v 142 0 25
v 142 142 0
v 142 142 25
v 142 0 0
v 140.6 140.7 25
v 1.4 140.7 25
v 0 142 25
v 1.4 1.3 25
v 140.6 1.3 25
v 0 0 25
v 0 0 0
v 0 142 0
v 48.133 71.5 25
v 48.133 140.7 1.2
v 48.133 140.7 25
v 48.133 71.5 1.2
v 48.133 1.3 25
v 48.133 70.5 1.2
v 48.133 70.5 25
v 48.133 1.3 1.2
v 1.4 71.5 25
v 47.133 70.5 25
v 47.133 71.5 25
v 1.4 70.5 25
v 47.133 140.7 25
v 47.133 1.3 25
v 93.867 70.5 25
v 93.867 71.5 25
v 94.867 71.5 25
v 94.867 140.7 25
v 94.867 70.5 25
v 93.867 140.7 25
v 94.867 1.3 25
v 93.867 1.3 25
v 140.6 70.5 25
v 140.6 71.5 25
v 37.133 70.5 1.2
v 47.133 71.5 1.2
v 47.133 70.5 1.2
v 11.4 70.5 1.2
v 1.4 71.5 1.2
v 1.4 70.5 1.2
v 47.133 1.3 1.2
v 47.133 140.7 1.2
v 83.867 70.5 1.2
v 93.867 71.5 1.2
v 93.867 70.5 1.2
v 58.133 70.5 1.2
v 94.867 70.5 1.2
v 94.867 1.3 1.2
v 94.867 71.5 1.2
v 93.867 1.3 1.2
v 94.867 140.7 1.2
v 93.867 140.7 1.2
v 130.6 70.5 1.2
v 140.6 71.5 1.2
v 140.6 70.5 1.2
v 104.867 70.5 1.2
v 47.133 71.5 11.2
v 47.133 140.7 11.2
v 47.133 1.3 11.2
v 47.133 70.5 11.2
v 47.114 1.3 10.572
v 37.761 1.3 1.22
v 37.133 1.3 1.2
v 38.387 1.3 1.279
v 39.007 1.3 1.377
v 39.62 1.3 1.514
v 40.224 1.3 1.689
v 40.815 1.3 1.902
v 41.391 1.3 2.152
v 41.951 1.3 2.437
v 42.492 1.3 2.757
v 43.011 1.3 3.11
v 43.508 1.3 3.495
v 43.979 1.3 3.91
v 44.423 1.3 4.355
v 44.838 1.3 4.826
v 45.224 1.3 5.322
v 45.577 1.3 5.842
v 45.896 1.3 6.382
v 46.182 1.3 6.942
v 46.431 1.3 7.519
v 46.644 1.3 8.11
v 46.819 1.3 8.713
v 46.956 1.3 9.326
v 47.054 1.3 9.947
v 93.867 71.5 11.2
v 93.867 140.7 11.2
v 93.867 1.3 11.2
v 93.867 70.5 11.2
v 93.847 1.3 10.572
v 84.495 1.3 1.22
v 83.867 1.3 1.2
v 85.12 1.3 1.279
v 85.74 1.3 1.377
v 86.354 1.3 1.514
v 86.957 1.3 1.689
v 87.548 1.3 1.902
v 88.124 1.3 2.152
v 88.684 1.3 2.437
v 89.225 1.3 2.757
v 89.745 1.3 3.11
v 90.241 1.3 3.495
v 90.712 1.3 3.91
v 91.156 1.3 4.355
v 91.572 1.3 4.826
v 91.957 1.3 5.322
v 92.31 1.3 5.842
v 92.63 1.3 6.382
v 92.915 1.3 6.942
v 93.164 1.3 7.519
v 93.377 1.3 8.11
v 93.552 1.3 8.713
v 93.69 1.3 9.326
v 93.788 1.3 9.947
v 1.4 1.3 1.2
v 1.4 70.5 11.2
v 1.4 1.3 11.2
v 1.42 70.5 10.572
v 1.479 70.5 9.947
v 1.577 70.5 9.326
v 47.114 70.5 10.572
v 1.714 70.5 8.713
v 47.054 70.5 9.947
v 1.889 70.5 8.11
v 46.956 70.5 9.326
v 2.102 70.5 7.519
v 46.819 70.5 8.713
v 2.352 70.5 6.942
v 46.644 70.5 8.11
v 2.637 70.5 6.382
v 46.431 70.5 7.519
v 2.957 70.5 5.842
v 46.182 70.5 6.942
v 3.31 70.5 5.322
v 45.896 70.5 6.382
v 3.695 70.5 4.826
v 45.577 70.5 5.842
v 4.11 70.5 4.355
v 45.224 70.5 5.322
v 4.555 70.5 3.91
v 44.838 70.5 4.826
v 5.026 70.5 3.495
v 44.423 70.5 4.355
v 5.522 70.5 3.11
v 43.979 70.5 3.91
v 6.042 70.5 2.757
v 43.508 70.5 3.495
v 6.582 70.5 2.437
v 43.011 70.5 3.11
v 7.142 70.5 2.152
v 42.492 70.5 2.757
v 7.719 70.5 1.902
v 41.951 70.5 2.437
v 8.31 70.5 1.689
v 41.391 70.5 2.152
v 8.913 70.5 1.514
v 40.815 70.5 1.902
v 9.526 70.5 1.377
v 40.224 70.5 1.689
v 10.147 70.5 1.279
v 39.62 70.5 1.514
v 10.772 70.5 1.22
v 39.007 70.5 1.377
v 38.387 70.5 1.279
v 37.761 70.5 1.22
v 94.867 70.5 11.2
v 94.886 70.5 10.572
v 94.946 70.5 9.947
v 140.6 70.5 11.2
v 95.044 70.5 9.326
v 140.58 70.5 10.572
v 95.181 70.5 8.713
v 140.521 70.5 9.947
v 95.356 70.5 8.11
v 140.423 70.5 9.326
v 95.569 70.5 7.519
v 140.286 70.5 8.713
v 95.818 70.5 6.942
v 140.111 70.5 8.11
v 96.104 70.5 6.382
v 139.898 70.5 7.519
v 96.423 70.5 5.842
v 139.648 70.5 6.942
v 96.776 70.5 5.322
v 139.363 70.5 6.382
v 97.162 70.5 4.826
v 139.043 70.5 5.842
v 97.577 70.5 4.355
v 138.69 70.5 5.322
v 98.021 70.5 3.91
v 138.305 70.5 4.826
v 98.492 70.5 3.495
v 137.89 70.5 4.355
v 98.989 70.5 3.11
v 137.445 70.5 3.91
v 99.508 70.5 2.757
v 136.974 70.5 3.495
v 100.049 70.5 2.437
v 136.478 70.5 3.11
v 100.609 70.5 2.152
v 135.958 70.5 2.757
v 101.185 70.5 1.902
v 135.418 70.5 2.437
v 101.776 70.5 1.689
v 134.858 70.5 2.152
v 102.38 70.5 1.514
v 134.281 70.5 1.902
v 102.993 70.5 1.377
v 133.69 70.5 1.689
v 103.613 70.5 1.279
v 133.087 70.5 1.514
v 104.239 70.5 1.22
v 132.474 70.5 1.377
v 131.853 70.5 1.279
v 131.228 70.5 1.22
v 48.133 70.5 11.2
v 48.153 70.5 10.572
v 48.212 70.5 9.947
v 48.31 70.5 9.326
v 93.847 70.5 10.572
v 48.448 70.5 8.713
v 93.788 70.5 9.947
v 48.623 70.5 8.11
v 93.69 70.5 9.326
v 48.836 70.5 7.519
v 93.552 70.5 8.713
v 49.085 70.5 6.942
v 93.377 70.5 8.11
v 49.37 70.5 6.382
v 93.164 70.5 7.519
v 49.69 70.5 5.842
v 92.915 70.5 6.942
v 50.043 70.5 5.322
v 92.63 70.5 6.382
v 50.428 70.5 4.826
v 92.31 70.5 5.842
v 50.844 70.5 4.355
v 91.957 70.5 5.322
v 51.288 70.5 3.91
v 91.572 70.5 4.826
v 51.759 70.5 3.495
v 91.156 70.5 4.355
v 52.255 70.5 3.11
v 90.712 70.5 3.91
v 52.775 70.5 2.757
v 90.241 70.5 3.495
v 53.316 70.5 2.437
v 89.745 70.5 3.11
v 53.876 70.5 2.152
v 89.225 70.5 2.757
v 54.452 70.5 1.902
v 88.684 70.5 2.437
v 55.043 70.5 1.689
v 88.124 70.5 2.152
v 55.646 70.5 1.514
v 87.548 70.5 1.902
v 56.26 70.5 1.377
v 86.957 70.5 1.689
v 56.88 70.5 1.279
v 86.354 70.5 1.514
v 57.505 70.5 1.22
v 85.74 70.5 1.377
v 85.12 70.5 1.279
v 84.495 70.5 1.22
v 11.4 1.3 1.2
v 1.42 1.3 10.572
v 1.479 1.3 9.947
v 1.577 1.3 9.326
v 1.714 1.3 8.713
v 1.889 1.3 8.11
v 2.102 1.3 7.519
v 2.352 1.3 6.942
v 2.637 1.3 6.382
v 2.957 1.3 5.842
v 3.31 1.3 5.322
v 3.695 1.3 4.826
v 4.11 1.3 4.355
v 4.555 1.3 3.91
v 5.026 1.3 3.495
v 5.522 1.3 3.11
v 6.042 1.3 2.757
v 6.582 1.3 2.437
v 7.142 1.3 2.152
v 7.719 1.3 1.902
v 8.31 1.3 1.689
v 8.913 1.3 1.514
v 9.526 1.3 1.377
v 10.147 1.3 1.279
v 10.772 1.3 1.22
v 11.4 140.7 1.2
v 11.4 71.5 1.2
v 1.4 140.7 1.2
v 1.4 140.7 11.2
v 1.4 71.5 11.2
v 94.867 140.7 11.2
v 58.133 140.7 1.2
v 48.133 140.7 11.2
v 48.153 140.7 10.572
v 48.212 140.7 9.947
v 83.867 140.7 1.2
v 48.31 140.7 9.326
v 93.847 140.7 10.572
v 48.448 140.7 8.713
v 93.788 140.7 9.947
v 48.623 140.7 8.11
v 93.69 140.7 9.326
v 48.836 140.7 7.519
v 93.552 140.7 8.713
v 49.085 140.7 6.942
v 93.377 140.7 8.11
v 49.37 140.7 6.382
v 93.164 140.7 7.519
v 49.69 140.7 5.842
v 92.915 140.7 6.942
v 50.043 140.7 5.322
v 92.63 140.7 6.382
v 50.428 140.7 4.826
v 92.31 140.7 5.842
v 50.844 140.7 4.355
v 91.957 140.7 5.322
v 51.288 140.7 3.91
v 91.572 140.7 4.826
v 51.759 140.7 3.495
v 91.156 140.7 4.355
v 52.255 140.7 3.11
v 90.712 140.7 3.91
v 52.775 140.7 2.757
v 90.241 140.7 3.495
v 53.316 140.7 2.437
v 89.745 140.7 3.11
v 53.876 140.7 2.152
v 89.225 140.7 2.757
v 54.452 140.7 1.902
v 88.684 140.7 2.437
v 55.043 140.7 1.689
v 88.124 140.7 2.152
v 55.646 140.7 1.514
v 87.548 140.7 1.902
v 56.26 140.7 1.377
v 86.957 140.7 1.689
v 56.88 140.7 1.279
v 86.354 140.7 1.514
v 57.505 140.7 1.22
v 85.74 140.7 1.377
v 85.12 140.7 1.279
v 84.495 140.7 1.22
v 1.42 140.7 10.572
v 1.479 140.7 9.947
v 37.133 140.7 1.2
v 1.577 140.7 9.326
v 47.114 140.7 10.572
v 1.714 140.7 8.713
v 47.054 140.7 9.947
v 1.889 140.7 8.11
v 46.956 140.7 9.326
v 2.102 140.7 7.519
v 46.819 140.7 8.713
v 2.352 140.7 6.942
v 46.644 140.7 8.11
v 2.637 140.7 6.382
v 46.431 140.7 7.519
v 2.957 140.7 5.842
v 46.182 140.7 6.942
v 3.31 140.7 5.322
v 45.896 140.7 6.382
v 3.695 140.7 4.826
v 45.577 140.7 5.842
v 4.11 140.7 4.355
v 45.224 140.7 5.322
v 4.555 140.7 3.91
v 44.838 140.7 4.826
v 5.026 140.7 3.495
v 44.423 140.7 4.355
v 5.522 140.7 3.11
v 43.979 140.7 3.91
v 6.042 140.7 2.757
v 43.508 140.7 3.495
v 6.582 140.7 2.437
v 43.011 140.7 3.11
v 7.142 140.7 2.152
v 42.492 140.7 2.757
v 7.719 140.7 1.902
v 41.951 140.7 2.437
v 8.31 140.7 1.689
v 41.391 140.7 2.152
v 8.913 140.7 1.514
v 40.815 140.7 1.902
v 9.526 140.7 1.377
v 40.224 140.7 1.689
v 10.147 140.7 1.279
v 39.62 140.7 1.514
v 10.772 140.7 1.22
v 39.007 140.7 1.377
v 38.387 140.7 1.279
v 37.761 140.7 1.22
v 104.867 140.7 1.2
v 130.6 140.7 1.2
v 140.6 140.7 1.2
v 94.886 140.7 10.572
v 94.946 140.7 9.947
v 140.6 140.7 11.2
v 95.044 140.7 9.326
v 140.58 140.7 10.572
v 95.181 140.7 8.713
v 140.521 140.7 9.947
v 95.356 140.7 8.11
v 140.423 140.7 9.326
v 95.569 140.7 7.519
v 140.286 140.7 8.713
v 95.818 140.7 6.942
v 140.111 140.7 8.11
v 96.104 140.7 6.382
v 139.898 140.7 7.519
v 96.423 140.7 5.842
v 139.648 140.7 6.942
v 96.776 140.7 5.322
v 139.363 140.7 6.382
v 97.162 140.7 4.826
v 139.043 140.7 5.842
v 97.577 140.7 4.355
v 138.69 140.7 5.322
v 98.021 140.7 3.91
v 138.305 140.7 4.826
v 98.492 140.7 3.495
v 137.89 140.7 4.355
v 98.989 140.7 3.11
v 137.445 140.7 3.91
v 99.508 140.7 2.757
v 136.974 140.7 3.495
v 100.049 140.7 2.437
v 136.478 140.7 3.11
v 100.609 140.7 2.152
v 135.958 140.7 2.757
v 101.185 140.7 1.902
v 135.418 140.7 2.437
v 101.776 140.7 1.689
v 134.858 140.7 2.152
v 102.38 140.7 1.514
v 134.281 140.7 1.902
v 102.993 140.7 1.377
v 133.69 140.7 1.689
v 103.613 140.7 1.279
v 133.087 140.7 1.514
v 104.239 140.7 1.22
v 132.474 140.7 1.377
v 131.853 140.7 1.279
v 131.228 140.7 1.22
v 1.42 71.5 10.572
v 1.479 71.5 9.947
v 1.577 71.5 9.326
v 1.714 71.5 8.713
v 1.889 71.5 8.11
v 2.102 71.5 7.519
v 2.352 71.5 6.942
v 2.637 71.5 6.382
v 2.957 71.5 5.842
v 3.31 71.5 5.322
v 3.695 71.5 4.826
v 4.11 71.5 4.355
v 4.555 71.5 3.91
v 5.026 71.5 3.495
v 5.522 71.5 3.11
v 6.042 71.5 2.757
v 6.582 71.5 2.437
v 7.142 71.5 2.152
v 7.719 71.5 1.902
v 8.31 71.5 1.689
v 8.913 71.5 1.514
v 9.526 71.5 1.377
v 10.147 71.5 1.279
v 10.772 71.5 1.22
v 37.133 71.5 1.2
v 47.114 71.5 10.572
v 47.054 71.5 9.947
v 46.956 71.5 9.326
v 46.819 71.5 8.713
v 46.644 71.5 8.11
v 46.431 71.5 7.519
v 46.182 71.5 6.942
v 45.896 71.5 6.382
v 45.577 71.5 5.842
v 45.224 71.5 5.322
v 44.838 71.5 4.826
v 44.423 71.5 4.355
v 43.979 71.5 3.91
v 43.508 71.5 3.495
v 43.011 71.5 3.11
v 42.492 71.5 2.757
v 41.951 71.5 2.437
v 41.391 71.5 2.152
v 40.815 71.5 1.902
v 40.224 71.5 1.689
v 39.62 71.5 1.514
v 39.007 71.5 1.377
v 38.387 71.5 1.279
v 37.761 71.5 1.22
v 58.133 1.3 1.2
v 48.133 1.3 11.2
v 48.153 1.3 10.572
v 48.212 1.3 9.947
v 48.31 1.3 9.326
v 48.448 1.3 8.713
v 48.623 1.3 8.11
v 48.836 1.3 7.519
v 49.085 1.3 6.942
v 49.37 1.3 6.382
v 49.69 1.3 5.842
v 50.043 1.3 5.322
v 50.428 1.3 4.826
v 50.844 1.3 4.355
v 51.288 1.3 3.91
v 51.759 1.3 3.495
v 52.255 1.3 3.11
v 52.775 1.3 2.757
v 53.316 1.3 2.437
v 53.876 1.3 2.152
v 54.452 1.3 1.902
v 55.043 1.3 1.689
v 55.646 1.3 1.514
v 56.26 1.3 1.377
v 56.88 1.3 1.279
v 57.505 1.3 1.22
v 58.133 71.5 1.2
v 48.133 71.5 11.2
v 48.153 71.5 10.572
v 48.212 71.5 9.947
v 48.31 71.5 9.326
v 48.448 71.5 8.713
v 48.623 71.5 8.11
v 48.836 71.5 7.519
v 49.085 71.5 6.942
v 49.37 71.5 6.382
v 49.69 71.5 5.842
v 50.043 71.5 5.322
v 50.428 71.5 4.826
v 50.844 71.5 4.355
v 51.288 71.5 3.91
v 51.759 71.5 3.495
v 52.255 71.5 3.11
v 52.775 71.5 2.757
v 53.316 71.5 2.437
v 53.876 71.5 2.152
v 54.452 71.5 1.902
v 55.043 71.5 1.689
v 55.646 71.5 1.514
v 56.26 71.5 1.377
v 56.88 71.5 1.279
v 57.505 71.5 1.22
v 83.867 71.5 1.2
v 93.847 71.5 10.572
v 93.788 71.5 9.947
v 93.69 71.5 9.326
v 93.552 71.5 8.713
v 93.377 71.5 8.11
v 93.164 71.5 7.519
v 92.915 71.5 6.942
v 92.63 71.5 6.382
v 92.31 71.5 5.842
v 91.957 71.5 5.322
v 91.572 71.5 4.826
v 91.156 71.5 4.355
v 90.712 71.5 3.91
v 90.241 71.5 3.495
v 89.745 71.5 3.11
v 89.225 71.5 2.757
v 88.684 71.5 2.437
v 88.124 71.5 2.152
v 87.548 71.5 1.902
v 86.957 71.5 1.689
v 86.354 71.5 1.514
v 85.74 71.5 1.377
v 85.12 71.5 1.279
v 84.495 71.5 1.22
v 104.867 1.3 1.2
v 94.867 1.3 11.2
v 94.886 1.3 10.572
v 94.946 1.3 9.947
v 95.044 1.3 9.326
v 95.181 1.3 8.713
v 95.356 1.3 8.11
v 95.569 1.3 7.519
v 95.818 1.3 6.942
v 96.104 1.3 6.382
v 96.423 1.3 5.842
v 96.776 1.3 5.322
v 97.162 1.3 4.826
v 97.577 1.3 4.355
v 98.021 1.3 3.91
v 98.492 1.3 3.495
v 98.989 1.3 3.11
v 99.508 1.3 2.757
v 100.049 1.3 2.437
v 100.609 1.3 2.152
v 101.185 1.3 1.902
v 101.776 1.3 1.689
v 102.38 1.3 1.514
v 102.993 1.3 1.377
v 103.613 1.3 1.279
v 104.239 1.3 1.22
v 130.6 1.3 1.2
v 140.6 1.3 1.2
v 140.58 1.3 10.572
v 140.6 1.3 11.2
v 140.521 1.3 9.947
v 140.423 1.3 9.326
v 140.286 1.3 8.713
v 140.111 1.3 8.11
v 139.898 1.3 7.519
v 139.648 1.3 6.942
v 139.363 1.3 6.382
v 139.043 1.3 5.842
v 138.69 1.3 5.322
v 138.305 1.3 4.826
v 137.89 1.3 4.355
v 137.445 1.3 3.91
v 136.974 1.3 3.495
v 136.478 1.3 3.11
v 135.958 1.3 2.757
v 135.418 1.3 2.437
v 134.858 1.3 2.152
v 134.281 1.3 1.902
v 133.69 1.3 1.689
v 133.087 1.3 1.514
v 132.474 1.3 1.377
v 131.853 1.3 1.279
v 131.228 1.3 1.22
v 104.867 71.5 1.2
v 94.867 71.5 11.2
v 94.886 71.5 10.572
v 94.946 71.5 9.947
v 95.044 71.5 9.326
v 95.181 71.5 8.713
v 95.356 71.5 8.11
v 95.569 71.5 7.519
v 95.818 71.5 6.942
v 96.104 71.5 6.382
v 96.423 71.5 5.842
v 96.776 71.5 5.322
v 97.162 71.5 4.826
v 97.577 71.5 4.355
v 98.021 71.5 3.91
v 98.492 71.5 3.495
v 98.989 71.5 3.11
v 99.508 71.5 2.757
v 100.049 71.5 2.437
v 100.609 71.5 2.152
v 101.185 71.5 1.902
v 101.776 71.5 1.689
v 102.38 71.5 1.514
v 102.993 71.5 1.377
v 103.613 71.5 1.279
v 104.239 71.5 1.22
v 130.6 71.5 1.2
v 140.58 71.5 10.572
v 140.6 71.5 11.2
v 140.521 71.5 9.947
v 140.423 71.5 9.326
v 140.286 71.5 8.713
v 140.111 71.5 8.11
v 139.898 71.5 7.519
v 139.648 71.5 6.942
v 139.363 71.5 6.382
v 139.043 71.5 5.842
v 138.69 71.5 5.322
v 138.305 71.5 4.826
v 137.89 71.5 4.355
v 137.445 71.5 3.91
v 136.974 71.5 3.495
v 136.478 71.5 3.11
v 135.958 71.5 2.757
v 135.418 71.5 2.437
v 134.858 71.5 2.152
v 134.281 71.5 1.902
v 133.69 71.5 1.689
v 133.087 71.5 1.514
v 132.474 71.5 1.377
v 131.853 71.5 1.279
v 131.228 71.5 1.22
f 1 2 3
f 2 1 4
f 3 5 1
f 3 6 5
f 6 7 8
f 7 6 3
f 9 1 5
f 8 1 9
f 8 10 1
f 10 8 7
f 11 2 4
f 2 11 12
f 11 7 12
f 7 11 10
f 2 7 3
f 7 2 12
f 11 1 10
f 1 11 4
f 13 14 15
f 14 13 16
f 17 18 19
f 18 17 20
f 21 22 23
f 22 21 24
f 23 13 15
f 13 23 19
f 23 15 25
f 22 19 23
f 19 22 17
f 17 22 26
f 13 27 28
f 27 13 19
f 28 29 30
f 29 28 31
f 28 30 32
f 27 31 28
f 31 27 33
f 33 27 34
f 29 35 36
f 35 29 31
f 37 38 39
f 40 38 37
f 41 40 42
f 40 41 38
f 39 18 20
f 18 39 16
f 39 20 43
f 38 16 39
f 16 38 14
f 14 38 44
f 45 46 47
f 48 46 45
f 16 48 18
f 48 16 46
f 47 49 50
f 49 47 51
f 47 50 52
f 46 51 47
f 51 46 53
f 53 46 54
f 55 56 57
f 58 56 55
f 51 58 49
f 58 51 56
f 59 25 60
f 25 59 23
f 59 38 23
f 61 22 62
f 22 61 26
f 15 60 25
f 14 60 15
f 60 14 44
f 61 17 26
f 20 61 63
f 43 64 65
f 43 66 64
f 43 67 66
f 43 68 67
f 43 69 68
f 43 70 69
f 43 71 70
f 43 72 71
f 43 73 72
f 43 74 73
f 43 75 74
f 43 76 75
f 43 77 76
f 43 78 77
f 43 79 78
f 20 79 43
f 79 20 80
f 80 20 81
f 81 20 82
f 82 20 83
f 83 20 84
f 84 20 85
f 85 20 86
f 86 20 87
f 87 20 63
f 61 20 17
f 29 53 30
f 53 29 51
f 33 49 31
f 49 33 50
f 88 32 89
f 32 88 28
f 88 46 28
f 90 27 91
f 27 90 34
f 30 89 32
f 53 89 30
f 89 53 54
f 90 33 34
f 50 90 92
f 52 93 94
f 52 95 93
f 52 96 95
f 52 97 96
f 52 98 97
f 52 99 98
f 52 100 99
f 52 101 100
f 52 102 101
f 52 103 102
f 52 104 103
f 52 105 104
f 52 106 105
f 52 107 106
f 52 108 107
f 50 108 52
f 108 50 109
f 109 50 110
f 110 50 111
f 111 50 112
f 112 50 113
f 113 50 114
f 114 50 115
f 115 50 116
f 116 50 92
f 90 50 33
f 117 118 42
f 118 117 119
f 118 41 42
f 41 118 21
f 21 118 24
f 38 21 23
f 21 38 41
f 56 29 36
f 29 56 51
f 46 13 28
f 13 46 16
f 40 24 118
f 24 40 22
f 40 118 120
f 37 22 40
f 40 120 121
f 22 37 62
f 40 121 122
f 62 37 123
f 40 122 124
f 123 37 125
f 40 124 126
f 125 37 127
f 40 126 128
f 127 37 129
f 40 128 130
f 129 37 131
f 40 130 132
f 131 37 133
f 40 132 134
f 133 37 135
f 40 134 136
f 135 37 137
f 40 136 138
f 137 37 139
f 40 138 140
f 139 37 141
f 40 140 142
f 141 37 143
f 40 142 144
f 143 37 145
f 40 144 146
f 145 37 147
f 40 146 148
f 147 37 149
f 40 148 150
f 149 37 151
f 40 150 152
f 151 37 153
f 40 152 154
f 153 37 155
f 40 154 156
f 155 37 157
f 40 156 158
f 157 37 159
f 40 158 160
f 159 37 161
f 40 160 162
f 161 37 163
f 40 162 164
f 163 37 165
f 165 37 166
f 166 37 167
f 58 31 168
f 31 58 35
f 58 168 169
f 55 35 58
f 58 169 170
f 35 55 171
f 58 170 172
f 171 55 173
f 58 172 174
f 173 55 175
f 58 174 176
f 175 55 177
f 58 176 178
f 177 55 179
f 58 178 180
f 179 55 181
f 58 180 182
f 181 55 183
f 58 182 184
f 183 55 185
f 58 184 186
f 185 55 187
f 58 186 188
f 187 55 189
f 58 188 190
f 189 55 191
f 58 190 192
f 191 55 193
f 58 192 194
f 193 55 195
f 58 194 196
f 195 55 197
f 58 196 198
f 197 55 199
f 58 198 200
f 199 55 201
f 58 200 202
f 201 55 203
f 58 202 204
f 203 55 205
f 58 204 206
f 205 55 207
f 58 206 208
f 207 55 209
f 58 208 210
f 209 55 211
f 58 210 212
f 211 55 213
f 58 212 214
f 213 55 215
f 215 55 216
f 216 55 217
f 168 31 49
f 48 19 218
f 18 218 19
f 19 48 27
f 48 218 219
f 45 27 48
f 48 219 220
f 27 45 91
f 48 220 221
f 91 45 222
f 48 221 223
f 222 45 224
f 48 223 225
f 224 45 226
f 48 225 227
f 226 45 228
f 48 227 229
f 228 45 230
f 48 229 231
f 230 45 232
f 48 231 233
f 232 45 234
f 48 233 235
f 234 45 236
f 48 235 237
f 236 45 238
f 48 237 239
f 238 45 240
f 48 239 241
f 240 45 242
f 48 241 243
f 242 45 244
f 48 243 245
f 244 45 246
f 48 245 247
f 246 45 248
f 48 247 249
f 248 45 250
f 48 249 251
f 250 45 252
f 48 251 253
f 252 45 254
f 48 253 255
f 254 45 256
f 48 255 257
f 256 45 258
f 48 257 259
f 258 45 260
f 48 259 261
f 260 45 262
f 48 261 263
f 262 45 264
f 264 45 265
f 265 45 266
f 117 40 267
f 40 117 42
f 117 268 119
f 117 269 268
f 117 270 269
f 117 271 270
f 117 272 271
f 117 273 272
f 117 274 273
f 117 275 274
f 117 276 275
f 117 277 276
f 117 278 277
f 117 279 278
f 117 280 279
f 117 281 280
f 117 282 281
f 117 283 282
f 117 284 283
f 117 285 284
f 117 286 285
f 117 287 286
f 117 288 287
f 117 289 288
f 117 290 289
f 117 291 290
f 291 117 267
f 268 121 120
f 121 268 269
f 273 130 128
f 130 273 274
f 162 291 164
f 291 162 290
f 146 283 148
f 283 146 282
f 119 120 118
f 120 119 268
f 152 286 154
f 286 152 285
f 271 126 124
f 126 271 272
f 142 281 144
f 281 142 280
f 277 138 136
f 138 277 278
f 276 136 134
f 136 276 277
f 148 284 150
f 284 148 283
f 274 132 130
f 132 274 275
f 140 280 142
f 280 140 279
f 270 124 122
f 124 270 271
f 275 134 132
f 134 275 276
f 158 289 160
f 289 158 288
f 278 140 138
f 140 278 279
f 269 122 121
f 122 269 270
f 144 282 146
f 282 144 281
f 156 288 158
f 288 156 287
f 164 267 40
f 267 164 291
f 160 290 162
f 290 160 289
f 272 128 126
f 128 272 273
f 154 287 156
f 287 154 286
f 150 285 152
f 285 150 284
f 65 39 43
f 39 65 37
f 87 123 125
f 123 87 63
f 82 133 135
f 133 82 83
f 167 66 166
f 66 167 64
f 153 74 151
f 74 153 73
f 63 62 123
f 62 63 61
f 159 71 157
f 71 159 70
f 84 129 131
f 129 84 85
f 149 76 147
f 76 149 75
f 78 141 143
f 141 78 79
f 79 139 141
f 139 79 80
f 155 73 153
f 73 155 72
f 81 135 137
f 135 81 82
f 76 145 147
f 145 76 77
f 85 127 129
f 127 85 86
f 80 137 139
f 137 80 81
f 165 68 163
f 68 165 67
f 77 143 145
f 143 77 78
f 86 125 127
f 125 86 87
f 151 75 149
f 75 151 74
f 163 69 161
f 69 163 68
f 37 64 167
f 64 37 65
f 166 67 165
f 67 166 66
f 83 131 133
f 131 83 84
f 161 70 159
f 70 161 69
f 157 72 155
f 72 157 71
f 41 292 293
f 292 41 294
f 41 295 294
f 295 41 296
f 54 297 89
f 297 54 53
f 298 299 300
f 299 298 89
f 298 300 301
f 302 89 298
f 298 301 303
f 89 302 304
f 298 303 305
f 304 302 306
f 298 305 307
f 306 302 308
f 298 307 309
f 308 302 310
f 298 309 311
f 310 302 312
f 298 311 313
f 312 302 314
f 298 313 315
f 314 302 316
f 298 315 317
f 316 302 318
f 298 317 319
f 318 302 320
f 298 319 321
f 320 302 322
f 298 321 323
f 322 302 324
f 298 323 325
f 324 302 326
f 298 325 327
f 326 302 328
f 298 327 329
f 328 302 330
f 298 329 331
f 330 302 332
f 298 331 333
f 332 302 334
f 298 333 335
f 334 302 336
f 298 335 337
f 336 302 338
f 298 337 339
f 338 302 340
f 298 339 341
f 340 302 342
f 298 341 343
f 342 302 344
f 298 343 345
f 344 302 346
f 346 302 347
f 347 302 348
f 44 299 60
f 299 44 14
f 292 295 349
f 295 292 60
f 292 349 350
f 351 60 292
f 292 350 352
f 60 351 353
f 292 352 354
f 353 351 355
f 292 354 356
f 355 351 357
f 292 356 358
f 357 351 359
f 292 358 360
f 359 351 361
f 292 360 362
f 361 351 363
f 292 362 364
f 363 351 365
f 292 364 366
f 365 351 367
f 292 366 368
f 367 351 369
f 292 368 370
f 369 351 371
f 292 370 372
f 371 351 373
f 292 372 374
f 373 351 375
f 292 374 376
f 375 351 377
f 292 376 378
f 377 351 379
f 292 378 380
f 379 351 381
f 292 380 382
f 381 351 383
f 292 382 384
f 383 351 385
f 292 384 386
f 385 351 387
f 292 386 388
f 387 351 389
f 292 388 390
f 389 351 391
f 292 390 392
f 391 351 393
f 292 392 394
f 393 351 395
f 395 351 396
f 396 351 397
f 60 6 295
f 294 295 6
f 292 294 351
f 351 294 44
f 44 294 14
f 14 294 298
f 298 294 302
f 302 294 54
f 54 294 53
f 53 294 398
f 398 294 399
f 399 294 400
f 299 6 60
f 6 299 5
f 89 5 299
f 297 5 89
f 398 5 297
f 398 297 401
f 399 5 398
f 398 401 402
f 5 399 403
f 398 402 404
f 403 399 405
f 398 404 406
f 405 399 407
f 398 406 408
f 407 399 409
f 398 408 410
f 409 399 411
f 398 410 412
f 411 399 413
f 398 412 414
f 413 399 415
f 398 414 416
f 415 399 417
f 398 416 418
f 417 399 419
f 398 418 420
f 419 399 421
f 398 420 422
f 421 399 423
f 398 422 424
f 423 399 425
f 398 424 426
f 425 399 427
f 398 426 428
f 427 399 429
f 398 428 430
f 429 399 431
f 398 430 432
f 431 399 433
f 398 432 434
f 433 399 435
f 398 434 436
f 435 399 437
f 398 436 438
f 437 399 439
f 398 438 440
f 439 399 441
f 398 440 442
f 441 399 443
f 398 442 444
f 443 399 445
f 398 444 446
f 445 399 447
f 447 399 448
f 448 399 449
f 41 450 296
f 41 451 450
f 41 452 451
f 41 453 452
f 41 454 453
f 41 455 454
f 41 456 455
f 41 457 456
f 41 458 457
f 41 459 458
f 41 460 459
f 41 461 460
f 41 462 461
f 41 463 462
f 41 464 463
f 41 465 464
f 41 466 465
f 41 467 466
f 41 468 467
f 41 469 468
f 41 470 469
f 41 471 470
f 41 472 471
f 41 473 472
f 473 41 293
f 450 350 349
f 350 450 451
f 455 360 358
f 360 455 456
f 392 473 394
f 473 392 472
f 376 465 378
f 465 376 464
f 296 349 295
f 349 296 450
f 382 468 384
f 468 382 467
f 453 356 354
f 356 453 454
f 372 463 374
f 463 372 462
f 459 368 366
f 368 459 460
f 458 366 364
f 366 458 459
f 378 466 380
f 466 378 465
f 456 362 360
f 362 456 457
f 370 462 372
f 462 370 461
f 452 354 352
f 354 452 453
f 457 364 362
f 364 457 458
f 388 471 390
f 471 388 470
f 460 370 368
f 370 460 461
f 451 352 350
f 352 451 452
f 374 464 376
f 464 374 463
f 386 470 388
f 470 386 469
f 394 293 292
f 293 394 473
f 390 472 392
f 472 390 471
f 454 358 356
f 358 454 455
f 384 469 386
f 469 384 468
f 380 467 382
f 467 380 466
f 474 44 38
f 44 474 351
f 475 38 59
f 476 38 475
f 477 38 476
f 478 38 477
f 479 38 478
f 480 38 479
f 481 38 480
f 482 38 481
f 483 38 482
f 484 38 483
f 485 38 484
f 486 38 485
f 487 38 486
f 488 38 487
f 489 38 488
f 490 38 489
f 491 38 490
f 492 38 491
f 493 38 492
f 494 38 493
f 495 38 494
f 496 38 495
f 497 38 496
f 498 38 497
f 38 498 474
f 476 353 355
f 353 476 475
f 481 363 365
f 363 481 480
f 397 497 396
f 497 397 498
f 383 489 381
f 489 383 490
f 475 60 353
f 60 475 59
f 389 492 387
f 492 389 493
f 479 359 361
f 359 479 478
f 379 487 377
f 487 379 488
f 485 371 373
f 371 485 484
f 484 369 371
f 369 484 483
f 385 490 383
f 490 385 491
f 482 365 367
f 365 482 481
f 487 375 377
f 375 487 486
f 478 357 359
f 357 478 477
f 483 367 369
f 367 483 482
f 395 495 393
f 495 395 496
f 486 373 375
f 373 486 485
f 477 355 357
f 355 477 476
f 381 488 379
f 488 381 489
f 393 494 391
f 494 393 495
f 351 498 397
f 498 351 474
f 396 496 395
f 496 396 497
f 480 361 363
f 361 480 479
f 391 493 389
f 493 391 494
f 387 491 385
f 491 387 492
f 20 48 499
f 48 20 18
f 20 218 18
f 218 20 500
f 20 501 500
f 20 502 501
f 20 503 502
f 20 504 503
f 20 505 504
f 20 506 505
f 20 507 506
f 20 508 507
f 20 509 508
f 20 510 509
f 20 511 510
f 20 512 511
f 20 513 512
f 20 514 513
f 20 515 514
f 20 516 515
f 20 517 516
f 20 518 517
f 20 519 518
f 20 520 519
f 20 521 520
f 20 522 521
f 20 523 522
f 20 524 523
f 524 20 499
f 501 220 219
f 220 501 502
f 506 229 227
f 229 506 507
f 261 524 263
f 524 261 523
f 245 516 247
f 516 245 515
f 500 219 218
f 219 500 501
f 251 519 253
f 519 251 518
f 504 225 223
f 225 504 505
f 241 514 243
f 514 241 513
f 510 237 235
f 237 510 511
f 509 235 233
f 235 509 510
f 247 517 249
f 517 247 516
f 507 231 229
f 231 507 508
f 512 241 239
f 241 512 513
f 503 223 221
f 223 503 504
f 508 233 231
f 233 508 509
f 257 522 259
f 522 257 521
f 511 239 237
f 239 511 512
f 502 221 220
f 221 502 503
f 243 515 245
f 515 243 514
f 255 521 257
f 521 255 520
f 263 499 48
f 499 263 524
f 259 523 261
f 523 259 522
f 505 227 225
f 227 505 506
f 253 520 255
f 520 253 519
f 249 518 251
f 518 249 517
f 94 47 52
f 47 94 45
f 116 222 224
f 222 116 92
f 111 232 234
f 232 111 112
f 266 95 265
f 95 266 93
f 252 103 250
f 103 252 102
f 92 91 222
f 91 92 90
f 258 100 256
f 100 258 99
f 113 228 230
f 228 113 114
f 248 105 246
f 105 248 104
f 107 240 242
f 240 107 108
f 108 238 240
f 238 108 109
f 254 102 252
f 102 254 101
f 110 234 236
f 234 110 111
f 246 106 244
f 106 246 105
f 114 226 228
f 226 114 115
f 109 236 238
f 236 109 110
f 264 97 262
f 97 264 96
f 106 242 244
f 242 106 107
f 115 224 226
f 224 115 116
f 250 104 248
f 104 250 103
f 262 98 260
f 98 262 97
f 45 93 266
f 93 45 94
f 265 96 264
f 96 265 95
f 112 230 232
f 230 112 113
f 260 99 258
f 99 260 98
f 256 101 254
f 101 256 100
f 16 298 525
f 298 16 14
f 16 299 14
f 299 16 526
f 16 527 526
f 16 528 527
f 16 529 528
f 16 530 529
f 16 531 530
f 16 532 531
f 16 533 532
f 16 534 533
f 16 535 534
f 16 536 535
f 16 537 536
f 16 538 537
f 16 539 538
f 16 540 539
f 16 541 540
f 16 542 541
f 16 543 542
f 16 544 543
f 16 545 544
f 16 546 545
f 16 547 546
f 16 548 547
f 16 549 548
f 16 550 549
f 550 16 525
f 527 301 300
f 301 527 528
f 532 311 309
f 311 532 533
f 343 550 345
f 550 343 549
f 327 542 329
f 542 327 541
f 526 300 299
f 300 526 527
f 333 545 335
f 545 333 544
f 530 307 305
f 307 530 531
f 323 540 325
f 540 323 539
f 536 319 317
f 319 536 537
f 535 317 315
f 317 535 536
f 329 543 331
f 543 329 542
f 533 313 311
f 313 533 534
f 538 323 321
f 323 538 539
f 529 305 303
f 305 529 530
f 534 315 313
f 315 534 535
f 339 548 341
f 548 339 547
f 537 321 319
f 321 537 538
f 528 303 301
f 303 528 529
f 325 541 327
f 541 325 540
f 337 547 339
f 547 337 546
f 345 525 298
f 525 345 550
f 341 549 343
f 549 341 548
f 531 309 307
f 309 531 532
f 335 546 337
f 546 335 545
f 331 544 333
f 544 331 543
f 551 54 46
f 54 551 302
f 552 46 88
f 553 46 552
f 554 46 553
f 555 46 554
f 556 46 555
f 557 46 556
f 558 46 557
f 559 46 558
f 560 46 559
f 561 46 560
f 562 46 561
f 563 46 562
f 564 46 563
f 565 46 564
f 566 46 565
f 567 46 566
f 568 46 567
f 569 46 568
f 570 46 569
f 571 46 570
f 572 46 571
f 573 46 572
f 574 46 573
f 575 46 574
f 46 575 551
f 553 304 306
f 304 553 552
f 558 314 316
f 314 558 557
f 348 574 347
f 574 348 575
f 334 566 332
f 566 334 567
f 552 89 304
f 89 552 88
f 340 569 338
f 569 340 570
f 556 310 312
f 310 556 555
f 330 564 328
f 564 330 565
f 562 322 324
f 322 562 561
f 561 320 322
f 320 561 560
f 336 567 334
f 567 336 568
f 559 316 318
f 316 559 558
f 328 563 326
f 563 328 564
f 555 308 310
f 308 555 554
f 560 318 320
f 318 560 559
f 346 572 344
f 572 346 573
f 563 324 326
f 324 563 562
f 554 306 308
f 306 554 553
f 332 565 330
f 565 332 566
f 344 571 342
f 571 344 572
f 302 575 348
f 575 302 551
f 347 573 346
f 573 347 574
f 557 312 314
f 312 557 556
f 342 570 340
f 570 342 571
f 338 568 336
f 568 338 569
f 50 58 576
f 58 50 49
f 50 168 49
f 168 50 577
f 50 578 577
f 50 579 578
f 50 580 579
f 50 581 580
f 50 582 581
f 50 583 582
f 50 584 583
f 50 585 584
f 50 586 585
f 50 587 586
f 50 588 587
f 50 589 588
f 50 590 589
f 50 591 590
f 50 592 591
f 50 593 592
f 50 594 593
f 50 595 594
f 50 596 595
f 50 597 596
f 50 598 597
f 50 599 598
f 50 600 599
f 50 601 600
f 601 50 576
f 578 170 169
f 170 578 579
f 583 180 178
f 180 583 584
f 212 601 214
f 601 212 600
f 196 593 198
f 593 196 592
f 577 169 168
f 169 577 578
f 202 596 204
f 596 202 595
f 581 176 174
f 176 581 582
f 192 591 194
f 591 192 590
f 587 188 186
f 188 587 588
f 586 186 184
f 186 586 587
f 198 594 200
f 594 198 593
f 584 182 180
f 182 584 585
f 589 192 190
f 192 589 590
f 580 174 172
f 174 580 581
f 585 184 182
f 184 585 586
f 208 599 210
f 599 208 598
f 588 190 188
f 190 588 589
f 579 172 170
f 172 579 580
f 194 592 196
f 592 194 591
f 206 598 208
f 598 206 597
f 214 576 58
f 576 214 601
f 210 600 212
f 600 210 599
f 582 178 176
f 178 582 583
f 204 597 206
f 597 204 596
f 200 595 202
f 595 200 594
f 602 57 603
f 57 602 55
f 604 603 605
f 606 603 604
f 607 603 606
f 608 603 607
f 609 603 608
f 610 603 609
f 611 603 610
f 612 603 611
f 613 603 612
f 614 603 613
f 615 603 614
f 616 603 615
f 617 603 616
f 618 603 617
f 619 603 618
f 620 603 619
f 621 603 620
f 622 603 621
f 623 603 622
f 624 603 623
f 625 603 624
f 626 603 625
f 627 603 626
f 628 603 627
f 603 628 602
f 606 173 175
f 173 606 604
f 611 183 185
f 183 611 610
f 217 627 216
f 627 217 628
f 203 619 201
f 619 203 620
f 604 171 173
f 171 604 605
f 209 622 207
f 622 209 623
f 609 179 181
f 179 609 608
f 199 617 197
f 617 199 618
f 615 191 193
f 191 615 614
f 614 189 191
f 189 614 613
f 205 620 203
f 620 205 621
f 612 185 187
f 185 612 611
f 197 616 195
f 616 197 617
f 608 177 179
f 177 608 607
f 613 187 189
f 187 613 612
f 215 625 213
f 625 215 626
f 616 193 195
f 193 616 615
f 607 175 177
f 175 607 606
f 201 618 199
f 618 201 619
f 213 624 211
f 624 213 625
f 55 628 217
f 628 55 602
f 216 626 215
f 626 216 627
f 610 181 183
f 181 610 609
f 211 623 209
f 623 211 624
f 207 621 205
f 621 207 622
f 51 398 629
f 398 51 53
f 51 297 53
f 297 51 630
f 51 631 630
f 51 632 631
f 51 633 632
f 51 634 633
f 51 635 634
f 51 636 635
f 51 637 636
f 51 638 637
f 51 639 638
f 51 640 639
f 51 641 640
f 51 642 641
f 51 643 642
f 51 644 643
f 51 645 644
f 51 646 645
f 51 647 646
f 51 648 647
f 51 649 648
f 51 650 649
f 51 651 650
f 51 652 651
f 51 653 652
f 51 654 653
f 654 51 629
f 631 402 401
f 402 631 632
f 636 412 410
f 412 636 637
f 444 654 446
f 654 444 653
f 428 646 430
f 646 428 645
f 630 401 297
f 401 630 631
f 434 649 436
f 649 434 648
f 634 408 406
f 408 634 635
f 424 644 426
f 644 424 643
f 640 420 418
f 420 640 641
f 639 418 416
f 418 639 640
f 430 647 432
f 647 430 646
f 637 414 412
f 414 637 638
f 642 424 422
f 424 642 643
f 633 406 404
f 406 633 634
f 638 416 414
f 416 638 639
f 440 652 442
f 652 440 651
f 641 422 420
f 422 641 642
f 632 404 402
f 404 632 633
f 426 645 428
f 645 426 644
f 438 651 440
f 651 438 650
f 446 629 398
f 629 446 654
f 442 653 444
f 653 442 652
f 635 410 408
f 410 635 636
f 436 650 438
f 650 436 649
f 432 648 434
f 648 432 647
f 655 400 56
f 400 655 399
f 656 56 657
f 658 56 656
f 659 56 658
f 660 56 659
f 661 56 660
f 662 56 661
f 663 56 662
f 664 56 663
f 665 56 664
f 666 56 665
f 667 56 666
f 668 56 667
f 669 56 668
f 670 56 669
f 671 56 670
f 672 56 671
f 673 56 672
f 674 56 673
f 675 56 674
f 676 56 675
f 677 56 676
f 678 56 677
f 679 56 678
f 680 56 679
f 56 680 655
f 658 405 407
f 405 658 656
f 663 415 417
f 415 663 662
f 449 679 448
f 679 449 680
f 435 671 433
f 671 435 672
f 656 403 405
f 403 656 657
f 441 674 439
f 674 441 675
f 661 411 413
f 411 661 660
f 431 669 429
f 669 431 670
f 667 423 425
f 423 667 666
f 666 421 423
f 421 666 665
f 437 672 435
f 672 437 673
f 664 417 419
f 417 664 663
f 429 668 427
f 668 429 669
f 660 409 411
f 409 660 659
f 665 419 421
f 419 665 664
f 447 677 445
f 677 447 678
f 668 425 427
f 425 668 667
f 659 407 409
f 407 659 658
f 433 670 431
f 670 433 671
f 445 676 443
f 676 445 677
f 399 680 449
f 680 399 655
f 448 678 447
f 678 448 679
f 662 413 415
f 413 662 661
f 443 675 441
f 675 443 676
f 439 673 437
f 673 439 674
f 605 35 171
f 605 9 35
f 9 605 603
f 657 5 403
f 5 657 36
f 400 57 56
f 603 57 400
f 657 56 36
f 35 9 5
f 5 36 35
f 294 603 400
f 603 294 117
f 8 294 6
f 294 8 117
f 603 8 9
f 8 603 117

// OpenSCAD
include <boardgame_insert_toolkit_lib.2.scad>;

// determines whether lids are output.
g_b_print_lid = true;

// determines whether boxes are output.
g_b_print_box = true; 

// Focus on one box
g_isolated_print_box = ""; 

// Used to visualize how all of the boxes fit together. 
g_b_visualization = false;          
        
// this is the outer wall thickness. 
//Default = 1.5mm
g_wall_thickness = 1.2;

// The tolerance value is extra space put between planes of the lid and box that fit together.
// Increase the tolerance to loosen the fit and decrease it to tighten it.
//
// Note that the tolerance is applied exclusively to the lid.
// So if the lid is too tight or too loose, change this value ( up for looser fit, down for tighter fit ) and 
// you only need to reprint the lid.
// 
// The exception is the stackable box, where the bottom of the box is the lid of the box below,
// in which case the tolerance also affects that box bottom.
//
g_tolerance = 0.15;

// This adjusts the position of the lid detents downward. 
// The larger the value, the bigger the gap between the lid and the box.
g_tolerance_detents_pos = 0.1;

aw_box_x = 142.0; // 284 / 2
aw_box_y = 142.0; //
aw_box_z = 25.0;

aw_compartment_size_x = (aw_box_x - 4 * g_wall_thickness) / 3;
aw_compartment_size_y = (aw_box_y - 3 * g_wall_thickness) / 2;

data =
  [
    [
      "3x3 box",
      [
        [ BOX_SIZE_XYZ, [aw_box_x, aw_box_y, aw_box_z] ],
        [ BOX_NO_LID_B, t],
        [
          BOX_COMPONENT,
          [
            [ CMP_SHAPE, FILLET ],
            [ CMP_NUM_COMPARTMENTS_XY, [3, 2] ],
            [
              CMP_COMPARTMENT_SIZE_XYZ,
              [
                aw_compartment_size_x,
                aw_compartment_size_y,
                aw_box_z - 1 * g_wall_thickness
              ]
            ],
            [ POSITION_XY, [ CENTER, CENTER ] ],
          ]
        ],
      ]
    ]
  ];


MakeAll();
